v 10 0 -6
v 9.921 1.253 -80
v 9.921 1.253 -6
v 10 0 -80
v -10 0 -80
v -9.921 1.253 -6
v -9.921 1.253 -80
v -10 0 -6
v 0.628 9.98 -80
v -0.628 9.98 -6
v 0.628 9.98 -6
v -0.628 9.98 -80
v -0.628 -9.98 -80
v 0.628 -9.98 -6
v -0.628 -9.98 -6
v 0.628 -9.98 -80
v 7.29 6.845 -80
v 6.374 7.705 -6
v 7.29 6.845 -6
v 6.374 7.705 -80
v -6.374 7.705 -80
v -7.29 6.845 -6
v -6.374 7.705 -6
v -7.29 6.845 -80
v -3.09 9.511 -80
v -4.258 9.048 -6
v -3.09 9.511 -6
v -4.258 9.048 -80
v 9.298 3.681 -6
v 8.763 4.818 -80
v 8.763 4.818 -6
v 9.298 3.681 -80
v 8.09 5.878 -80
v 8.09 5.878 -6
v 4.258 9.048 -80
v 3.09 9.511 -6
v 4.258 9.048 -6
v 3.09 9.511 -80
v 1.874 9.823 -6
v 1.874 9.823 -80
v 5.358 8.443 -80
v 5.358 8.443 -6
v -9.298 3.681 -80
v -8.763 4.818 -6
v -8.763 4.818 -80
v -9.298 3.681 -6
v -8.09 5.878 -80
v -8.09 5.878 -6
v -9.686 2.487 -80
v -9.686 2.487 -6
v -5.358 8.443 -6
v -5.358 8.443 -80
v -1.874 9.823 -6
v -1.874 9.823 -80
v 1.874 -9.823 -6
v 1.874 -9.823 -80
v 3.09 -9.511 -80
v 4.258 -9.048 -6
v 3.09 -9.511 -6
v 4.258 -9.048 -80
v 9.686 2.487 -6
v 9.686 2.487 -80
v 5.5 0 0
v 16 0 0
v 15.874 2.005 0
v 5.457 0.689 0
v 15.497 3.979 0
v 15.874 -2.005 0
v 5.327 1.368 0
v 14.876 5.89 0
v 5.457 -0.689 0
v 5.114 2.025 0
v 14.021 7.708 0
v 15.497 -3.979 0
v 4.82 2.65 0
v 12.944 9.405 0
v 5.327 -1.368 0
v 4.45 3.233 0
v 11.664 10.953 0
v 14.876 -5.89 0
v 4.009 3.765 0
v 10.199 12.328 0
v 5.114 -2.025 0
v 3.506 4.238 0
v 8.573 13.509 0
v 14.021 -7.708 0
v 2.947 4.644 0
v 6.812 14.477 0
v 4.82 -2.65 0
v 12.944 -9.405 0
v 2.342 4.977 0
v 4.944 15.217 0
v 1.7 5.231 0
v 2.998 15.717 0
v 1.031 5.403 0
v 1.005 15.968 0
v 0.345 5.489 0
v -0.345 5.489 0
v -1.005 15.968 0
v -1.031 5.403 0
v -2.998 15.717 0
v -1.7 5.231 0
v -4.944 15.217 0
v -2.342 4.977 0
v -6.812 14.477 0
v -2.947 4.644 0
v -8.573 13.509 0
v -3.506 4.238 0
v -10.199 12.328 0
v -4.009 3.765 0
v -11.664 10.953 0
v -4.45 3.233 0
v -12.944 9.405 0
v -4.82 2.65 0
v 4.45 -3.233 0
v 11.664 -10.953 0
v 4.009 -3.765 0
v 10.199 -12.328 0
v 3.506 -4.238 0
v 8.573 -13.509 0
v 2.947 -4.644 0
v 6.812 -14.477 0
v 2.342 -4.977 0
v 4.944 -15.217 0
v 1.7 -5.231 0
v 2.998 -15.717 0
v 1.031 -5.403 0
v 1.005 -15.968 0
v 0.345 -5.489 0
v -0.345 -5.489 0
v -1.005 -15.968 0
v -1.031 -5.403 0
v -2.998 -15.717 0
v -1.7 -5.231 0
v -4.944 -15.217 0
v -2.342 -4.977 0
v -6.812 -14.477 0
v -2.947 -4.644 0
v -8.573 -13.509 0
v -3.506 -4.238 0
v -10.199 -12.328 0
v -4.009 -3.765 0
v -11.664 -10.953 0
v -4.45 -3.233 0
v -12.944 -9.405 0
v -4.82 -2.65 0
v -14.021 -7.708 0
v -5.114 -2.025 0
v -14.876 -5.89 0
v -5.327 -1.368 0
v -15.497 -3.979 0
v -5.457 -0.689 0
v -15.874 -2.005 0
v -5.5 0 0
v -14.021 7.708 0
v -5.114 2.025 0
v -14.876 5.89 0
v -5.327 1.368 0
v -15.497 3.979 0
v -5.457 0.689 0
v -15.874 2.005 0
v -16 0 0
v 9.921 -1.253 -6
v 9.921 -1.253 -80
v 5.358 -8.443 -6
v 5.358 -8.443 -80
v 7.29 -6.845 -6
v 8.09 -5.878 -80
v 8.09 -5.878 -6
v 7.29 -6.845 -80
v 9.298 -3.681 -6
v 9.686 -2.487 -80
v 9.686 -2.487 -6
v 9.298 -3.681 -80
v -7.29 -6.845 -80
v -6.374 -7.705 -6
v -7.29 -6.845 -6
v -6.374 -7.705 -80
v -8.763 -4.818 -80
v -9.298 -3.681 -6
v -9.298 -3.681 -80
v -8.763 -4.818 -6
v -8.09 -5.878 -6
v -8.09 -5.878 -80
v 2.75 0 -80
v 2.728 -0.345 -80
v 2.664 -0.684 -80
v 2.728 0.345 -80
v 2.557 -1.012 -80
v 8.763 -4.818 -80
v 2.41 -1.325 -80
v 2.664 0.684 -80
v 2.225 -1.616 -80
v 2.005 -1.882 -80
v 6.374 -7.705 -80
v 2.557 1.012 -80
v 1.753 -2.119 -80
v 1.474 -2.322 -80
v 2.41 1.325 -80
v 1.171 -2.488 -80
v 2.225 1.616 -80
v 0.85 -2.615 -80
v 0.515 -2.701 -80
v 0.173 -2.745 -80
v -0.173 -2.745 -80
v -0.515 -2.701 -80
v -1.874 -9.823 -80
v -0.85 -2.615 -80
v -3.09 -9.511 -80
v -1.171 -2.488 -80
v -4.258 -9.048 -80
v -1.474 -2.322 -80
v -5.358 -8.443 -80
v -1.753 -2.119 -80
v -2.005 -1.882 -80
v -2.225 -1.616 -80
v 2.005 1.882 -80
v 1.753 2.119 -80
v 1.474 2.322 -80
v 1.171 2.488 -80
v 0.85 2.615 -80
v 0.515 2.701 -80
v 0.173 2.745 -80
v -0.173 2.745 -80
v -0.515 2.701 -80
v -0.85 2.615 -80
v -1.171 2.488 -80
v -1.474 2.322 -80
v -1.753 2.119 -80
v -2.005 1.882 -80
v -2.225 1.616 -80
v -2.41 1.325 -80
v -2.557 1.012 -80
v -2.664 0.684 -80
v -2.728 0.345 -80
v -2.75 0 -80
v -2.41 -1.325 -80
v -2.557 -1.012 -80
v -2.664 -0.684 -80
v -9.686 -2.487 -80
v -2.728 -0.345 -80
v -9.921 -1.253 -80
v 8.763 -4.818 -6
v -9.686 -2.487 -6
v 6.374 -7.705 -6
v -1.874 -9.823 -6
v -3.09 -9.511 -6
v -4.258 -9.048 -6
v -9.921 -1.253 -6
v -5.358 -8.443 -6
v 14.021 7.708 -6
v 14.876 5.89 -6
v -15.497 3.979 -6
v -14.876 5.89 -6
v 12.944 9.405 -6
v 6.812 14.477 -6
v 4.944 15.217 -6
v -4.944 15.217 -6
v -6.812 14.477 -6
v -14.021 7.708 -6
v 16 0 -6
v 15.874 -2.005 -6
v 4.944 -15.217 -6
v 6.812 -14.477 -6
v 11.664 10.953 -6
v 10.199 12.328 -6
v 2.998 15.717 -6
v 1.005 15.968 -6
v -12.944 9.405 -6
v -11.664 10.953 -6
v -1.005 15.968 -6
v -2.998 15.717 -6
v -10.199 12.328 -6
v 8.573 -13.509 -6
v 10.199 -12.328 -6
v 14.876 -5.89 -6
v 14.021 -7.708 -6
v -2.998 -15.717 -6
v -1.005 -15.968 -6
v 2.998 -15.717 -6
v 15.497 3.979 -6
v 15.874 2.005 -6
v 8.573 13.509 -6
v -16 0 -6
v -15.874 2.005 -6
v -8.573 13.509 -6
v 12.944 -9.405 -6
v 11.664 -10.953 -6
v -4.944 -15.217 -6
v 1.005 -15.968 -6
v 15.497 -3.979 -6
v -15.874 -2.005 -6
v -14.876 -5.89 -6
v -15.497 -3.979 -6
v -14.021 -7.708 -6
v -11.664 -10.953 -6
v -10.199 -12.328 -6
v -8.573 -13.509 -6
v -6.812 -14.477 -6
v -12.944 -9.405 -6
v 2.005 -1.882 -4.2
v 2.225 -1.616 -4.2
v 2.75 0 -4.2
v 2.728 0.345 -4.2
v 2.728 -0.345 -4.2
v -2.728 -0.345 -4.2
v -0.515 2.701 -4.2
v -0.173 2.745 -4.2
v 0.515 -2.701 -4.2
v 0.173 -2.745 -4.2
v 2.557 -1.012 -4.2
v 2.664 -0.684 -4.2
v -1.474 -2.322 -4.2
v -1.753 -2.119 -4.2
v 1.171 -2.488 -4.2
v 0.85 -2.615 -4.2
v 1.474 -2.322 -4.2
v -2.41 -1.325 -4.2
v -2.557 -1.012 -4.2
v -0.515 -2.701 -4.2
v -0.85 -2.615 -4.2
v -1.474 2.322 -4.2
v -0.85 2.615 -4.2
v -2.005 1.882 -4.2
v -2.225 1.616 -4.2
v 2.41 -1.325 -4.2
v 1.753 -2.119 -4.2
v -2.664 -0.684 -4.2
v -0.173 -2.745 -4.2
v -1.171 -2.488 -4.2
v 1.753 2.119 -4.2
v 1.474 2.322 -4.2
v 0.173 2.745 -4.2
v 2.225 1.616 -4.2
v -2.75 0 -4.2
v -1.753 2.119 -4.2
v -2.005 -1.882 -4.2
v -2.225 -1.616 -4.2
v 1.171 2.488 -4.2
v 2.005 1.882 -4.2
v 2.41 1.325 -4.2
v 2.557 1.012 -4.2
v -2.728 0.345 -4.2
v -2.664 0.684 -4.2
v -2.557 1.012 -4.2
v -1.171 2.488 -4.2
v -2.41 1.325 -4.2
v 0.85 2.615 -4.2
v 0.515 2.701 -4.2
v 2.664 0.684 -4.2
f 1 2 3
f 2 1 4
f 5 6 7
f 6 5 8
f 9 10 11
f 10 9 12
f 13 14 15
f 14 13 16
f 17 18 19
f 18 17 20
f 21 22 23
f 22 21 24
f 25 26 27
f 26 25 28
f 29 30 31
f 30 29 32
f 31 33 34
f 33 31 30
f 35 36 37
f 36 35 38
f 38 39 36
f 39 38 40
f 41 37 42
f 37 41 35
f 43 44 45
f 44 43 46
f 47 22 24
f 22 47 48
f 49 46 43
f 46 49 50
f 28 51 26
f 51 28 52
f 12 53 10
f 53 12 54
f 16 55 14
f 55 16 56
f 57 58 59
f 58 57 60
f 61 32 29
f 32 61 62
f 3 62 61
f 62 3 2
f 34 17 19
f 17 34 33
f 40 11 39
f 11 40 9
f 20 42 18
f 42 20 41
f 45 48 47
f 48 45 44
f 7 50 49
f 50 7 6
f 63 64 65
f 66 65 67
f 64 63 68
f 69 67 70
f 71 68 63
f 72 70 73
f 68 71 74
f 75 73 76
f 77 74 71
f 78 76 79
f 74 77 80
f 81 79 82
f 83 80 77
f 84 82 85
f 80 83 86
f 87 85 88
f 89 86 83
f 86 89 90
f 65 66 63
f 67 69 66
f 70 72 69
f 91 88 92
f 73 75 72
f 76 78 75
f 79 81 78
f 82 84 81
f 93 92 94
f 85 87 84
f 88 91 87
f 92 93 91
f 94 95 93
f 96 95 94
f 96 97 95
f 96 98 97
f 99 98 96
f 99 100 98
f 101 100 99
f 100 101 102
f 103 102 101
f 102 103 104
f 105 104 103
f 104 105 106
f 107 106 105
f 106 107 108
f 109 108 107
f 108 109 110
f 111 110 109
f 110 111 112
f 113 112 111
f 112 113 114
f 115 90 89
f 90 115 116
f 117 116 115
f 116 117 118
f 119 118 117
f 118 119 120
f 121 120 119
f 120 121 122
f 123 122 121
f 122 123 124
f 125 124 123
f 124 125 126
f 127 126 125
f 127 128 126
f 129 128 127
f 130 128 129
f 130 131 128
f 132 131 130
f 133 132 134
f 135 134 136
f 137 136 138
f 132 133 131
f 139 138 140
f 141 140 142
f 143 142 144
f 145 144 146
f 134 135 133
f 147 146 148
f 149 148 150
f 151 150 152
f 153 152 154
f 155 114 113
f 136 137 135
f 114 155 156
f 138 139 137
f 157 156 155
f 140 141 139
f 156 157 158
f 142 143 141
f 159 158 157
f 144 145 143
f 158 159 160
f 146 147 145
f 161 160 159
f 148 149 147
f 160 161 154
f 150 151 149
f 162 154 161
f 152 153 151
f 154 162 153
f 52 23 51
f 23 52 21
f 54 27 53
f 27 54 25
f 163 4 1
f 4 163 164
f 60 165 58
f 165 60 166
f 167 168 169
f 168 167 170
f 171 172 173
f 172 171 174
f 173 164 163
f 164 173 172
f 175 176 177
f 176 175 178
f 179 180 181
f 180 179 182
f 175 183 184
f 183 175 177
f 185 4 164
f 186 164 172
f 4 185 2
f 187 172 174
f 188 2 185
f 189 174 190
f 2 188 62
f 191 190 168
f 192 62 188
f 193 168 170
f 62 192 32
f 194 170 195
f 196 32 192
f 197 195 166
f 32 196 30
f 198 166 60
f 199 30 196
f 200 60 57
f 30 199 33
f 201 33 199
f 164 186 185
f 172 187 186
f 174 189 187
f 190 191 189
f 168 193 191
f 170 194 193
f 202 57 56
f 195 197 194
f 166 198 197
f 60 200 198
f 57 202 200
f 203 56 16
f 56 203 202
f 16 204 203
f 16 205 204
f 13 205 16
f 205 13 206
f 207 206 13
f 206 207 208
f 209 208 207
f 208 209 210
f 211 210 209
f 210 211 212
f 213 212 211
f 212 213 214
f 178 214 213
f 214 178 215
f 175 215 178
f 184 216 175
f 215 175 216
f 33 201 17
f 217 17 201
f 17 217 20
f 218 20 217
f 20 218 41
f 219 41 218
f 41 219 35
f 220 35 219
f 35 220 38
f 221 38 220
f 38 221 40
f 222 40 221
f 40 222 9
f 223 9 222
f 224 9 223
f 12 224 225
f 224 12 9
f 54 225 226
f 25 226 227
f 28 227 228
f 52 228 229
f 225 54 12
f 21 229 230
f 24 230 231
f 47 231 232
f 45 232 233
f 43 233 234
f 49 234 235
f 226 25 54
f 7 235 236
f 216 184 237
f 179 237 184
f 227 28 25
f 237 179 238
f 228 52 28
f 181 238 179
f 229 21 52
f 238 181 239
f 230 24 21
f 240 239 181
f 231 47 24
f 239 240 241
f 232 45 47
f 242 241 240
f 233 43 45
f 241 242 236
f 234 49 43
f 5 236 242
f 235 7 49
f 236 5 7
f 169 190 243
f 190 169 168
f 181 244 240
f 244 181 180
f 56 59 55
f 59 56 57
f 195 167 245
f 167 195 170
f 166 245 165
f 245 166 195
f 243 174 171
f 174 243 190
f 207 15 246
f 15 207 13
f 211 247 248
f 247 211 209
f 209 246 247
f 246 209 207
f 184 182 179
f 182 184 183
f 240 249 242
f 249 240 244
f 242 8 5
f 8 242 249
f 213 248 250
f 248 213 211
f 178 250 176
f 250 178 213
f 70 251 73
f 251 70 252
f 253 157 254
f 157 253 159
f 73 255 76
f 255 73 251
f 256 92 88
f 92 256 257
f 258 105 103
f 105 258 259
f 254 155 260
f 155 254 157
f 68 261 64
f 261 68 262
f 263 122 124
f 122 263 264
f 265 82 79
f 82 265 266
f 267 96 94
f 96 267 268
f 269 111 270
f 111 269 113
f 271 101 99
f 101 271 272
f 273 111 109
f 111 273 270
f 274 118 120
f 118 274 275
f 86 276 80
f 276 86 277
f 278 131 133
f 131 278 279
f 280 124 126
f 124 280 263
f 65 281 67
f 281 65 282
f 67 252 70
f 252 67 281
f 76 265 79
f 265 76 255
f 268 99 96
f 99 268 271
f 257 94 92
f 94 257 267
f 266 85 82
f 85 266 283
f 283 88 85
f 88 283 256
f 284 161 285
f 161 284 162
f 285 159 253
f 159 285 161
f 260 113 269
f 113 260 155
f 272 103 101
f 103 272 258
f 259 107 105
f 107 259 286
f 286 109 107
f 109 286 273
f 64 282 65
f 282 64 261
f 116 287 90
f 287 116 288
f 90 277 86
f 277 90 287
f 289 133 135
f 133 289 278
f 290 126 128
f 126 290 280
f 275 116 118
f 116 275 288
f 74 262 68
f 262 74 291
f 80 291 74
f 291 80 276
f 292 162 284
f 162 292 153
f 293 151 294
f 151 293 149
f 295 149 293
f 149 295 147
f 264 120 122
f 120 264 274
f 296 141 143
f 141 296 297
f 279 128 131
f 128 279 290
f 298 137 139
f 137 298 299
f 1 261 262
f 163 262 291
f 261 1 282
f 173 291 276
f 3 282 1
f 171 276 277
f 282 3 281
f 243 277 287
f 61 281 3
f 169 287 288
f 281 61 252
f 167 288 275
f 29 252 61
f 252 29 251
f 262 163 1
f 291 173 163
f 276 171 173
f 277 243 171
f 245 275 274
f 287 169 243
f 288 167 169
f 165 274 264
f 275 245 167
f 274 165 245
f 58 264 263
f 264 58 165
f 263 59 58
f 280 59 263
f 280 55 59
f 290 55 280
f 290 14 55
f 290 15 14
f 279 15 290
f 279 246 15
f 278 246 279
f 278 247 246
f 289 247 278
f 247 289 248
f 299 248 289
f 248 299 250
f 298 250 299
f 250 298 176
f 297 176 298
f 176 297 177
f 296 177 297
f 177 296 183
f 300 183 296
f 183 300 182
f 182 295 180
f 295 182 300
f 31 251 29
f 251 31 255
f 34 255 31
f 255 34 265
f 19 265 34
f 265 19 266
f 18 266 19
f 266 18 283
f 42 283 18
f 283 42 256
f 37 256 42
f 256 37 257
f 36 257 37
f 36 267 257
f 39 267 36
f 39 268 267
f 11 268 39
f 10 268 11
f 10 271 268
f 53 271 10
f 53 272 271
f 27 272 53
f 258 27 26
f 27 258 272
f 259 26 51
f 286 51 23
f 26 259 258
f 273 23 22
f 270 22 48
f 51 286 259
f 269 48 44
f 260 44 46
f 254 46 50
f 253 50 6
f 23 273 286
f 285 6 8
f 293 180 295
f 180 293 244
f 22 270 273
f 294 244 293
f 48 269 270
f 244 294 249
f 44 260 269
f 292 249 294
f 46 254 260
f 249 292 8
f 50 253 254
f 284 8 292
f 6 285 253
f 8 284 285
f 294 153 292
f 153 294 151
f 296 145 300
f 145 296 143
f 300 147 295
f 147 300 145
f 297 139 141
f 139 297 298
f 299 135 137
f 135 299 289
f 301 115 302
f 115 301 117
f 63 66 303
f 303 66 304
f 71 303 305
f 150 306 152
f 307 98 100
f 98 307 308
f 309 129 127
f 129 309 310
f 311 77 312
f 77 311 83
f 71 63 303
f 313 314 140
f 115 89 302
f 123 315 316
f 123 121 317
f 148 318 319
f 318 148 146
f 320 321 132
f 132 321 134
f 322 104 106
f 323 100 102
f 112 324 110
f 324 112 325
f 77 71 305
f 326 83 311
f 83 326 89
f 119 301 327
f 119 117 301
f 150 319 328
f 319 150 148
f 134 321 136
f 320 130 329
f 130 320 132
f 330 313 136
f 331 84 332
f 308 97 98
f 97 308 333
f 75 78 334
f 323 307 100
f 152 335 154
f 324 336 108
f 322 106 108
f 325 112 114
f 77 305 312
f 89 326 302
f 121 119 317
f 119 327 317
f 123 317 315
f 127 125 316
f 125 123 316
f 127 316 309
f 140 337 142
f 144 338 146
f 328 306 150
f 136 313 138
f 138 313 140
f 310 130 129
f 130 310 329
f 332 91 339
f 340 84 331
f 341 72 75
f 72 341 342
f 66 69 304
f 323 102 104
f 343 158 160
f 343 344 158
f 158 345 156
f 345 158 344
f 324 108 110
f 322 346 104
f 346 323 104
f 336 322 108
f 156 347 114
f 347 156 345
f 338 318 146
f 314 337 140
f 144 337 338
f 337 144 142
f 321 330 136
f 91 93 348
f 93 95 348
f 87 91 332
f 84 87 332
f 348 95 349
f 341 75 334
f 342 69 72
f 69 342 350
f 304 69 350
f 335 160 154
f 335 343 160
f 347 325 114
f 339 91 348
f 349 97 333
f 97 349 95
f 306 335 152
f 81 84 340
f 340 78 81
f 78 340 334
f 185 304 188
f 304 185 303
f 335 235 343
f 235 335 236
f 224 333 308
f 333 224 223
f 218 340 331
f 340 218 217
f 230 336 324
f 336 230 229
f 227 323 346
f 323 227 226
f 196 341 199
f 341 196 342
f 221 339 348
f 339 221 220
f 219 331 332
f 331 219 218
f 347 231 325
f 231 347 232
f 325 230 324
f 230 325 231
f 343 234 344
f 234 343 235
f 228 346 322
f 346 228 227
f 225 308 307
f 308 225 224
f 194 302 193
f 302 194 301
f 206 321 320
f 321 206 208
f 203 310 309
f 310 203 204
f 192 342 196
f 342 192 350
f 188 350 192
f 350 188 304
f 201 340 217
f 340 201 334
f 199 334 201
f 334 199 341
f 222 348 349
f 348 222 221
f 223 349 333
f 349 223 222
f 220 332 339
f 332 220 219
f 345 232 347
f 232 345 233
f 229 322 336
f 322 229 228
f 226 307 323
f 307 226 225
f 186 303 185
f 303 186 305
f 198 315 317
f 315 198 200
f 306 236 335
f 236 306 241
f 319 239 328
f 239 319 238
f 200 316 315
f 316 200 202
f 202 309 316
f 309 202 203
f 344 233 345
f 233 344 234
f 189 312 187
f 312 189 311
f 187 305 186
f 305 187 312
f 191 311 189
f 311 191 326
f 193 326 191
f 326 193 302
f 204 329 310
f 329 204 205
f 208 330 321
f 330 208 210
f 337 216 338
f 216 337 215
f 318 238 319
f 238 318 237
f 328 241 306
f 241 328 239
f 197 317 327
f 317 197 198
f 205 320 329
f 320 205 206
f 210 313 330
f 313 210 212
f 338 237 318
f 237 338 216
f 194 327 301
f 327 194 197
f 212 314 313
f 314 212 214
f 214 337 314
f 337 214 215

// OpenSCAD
$fn = 50;


difference() {
	union() {
		translate(v = [0, 0, -80.0000000000]) {
			cylinder(h = 80, r = 10.0000000000);
		}
		translate(v = [0, 0, -6.0000000000]) {
			cylinder(h = 6, r = 16.0000000000);
		}
	}
	union() {
		translate(v = [0, 0, 0]) {
			rotate(a = [0, 0, 0]) {
				difference() {
					union() {
						#translate(v = [0, 0, -80.0000000000]) {
							cylinder(h = 80, r = 2.2500000000);
						}
						#translate(v = [0, 0, -4.2000000000]) {
							cylinder(h = 4.2000000000, r = 10.0000000000, r1 = 2.7500000000, r2 = 5.5000000000);
						}
						#translate(v = [0, 0, -80.0000000000]) {
							cylinder(h = 80, r = 2.7500000000);
						}
						#translate(v = [0, 0, -80.0000000000]) {
							cylinder(h = 80, r = 2.2500000000);
						}
					}
					union();
				}
			}
		}
	}
}
